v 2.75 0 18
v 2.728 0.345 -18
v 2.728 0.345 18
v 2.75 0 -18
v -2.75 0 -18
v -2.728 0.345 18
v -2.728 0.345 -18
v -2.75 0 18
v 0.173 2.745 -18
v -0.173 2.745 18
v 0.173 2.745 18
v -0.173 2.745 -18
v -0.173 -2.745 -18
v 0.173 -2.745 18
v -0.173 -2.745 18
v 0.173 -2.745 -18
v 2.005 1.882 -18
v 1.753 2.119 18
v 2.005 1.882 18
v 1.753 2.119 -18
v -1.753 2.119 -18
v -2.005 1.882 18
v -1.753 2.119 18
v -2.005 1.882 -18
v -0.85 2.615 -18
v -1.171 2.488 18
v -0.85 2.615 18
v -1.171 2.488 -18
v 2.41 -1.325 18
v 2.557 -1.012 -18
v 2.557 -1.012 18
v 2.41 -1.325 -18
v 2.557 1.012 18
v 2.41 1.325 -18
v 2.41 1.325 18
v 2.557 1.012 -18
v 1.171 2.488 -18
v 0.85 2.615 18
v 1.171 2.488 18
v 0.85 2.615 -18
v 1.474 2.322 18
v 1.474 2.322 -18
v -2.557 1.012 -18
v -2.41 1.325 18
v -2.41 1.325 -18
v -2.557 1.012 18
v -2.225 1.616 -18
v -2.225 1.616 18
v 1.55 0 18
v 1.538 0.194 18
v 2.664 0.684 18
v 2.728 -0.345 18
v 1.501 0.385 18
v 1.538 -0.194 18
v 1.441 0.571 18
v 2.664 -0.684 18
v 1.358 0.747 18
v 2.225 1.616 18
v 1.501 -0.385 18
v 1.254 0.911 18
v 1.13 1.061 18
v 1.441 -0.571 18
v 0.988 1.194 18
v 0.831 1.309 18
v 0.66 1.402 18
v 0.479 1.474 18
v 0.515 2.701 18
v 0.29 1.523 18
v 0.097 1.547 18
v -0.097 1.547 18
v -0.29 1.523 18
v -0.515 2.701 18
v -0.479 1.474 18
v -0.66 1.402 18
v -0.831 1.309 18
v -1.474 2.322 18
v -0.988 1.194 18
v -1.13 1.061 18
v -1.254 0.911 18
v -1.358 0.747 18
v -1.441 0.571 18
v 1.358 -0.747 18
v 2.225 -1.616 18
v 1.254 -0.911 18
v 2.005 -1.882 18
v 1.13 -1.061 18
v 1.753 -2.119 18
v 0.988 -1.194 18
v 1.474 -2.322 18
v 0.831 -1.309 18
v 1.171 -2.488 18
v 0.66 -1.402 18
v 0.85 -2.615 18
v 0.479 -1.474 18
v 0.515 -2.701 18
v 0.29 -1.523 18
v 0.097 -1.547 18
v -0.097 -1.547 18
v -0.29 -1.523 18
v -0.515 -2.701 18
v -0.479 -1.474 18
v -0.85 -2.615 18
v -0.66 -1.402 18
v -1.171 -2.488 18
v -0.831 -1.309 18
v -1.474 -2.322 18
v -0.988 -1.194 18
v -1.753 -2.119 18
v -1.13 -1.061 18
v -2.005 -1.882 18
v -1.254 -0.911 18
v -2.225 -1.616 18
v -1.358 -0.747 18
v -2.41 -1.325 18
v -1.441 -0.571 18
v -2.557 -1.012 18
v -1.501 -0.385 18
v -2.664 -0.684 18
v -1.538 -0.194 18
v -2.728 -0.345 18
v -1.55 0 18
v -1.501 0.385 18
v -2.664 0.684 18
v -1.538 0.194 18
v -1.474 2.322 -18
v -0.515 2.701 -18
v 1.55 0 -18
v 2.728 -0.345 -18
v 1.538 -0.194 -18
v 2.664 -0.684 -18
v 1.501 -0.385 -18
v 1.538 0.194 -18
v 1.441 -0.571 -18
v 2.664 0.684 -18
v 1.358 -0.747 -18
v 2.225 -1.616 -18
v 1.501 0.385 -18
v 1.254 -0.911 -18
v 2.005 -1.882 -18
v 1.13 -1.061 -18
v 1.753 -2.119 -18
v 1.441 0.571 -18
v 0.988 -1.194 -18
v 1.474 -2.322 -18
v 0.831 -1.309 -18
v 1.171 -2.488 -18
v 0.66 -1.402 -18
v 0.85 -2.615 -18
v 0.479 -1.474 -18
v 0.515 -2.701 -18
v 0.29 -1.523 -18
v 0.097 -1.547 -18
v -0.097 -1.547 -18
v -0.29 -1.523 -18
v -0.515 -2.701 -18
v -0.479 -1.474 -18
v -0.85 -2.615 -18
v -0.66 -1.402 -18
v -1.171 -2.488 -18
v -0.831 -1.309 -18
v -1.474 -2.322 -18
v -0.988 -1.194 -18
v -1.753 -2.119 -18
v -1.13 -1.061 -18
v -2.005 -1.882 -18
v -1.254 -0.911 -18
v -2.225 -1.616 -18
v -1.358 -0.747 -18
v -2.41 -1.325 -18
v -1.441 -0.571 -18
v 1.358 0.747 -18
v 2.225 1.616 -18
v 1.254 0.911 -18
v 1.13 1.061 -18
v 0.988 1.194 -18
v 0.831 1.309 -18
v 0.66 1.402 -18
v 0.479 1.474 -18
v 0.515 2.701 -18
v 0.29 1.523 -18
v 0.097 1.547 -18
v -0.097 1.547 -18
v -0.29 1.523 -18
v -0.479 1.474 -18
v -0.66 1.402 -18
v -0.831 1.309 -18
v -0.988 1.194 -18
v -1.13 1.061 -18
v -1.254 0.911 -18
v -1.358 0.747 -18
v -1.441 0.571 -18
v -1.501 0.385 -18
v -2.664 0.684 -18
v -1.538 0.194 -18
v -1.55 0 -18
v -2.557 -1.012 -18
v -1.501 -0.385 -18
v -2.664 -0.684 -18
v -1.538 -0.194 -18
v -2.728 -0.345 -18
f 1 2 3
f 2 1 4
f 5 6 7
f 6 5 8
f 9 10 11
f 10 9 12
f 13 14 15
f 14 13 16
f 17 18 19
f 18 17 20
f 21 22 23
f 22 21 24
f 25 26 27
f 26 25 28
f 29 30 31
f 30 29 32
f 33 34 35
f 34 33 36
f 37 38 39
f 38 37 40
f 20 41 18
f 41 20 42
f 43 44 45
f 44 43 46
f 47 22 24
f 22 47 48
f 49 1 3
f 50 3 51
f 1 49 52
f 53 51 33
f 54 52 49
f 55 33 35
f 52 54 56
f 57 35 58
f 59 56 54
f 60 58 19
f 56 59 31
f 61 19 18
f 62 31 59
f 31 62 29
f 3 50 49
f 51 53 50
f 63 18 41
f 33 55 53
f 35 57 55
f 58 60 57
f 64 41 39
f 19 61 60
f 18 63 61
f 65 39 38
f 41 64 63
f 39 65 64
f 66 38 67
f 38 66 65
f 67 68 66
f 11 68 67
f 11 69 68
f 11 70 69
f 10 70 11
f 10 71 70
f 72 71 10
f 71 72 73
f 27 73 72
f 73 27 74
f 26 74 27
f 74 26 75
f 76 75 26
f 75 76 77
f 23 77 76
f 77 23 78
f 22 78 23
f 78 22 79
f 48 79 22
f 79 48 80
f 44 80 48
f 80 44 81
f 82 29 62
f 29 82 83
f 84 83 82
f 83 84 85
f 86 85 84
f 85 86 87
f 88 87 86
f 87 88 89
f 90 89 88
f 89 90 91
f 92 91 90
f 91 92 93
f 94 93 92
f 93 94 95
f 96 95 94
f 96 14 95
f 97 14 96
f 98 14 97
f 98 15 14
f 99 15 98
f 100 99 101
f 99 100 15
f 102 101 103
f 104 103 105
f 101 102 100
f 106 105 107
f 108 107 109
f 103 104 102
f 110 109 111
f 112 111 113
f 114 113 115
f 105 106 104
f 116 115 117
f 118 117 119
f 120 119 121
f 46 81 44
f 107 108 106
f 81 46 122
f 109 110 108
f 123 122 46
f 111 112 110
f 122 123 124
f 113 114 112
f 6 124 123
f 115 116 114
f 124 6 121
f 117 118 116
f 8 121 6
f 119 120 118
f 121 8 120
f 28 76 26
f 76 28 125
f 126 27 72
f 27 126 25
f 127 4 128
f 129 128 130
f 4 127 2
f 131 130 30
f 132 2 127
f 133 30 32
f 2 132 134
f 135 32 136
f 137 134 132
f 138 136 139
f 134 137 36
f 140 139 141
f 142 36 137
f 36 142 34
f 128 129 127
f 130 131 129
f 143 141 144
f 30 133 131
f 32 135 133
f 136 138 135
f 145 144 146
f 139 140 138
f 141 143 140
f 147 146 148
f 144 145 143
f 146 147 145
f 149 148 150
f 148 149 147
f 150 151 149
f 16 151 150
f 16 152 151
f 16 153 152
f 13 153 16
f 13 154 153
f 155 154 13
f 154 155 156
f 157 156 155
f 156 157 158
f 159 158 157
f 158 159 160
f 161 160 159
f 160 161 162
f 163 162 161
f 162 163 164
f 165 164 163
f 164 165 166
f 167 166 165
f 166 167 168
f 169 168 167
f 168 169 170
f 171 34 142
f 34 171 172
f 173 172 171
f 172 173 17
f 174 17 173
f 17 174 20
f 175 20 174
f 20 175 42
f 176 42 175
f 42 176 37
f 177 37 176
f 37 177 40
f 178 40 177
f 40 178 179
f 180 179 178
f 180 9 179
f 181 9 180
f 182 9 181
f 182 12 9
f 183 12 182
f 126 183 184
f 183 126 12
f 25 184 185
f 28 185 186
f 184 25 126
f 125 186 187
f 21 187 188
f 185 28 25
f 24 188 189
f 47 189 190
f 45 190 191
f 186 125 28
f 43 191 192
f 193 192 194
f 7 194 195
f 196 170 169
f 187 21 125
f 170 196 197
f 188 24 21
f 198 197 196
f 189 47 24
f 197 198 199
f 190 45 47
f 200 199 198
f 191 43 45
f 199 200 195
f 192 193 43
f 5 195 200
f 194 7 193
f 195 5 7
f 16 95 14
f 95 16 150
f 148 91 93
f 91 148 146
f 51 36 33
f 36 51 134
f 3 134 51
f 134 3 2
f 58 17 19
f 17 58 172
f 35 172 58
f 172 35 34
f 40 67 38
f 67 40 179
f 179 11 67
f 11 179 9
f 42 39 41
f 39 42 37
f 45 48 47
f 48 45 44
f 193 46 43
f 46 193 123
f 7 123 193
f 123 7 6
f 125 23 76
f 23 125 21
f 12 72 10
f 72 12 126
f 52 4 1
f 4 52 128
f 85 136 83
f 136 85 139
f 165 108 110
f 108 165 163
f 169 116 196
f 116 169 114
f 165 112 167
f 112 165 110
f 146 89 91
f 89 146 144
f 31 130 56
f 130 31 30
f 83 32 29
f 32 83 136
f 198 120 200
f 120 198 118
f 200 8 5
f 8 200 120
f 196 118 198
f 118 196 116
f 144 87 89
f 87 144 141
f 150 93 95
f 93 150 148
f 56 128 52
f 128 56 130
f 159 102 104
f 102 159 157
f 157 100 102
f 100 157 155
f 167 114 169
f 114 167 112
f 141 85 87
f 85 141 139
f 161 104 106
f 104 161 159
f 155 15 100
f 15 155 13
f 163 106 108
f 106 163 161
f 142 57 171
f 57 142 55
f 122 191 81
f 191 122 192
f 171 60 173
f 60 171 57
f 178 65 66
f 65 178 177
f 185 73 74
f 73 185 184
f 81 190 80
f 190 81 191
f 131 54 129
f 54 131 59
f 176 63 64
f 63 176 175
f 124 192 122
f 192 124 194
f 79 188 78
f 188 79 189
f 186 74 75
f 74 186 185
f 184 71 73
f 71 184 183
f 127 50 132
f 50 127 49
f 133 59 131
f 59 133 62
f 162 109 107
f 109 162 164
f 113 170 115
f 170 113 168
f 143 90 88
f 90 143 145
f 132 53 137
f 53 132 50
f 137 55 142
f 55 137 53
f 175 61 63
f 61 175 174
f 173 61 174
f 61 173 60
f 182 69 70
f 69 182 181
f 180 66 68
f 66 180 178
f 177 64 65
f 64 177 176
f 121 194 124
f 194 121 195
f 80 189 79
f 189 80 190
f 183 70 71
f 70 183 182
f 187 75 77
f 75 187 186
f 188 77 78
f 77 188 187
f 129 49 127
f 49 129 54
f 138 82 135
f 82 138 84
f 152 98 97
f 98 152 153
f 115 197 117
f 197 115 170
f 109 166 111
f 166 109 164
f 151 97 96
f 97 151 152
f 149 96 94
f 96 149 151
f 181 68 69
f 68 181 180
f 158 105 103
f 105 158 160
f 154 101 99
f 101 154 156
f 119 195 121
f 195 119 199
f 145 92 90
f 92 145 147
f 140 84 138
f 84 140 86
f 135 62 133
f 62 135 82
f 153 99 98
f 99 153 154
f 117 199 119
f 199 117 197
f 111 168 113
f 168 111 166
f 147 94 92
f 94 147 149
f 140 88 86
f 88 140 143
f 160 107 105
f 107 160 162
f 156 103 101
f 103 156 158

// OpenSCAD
$fn = 50;


difference() {
	union() {
		translate(v = [0, 0, -18.0000000000]) {
			cylinder(h = 36, r = 2.7500000000);
		}
	}
	union() {
		translate(v = [0, 0, -100.0000000000]) {
			cylinder(h = 200, r = 1.5500000000);
		}
	}
}
